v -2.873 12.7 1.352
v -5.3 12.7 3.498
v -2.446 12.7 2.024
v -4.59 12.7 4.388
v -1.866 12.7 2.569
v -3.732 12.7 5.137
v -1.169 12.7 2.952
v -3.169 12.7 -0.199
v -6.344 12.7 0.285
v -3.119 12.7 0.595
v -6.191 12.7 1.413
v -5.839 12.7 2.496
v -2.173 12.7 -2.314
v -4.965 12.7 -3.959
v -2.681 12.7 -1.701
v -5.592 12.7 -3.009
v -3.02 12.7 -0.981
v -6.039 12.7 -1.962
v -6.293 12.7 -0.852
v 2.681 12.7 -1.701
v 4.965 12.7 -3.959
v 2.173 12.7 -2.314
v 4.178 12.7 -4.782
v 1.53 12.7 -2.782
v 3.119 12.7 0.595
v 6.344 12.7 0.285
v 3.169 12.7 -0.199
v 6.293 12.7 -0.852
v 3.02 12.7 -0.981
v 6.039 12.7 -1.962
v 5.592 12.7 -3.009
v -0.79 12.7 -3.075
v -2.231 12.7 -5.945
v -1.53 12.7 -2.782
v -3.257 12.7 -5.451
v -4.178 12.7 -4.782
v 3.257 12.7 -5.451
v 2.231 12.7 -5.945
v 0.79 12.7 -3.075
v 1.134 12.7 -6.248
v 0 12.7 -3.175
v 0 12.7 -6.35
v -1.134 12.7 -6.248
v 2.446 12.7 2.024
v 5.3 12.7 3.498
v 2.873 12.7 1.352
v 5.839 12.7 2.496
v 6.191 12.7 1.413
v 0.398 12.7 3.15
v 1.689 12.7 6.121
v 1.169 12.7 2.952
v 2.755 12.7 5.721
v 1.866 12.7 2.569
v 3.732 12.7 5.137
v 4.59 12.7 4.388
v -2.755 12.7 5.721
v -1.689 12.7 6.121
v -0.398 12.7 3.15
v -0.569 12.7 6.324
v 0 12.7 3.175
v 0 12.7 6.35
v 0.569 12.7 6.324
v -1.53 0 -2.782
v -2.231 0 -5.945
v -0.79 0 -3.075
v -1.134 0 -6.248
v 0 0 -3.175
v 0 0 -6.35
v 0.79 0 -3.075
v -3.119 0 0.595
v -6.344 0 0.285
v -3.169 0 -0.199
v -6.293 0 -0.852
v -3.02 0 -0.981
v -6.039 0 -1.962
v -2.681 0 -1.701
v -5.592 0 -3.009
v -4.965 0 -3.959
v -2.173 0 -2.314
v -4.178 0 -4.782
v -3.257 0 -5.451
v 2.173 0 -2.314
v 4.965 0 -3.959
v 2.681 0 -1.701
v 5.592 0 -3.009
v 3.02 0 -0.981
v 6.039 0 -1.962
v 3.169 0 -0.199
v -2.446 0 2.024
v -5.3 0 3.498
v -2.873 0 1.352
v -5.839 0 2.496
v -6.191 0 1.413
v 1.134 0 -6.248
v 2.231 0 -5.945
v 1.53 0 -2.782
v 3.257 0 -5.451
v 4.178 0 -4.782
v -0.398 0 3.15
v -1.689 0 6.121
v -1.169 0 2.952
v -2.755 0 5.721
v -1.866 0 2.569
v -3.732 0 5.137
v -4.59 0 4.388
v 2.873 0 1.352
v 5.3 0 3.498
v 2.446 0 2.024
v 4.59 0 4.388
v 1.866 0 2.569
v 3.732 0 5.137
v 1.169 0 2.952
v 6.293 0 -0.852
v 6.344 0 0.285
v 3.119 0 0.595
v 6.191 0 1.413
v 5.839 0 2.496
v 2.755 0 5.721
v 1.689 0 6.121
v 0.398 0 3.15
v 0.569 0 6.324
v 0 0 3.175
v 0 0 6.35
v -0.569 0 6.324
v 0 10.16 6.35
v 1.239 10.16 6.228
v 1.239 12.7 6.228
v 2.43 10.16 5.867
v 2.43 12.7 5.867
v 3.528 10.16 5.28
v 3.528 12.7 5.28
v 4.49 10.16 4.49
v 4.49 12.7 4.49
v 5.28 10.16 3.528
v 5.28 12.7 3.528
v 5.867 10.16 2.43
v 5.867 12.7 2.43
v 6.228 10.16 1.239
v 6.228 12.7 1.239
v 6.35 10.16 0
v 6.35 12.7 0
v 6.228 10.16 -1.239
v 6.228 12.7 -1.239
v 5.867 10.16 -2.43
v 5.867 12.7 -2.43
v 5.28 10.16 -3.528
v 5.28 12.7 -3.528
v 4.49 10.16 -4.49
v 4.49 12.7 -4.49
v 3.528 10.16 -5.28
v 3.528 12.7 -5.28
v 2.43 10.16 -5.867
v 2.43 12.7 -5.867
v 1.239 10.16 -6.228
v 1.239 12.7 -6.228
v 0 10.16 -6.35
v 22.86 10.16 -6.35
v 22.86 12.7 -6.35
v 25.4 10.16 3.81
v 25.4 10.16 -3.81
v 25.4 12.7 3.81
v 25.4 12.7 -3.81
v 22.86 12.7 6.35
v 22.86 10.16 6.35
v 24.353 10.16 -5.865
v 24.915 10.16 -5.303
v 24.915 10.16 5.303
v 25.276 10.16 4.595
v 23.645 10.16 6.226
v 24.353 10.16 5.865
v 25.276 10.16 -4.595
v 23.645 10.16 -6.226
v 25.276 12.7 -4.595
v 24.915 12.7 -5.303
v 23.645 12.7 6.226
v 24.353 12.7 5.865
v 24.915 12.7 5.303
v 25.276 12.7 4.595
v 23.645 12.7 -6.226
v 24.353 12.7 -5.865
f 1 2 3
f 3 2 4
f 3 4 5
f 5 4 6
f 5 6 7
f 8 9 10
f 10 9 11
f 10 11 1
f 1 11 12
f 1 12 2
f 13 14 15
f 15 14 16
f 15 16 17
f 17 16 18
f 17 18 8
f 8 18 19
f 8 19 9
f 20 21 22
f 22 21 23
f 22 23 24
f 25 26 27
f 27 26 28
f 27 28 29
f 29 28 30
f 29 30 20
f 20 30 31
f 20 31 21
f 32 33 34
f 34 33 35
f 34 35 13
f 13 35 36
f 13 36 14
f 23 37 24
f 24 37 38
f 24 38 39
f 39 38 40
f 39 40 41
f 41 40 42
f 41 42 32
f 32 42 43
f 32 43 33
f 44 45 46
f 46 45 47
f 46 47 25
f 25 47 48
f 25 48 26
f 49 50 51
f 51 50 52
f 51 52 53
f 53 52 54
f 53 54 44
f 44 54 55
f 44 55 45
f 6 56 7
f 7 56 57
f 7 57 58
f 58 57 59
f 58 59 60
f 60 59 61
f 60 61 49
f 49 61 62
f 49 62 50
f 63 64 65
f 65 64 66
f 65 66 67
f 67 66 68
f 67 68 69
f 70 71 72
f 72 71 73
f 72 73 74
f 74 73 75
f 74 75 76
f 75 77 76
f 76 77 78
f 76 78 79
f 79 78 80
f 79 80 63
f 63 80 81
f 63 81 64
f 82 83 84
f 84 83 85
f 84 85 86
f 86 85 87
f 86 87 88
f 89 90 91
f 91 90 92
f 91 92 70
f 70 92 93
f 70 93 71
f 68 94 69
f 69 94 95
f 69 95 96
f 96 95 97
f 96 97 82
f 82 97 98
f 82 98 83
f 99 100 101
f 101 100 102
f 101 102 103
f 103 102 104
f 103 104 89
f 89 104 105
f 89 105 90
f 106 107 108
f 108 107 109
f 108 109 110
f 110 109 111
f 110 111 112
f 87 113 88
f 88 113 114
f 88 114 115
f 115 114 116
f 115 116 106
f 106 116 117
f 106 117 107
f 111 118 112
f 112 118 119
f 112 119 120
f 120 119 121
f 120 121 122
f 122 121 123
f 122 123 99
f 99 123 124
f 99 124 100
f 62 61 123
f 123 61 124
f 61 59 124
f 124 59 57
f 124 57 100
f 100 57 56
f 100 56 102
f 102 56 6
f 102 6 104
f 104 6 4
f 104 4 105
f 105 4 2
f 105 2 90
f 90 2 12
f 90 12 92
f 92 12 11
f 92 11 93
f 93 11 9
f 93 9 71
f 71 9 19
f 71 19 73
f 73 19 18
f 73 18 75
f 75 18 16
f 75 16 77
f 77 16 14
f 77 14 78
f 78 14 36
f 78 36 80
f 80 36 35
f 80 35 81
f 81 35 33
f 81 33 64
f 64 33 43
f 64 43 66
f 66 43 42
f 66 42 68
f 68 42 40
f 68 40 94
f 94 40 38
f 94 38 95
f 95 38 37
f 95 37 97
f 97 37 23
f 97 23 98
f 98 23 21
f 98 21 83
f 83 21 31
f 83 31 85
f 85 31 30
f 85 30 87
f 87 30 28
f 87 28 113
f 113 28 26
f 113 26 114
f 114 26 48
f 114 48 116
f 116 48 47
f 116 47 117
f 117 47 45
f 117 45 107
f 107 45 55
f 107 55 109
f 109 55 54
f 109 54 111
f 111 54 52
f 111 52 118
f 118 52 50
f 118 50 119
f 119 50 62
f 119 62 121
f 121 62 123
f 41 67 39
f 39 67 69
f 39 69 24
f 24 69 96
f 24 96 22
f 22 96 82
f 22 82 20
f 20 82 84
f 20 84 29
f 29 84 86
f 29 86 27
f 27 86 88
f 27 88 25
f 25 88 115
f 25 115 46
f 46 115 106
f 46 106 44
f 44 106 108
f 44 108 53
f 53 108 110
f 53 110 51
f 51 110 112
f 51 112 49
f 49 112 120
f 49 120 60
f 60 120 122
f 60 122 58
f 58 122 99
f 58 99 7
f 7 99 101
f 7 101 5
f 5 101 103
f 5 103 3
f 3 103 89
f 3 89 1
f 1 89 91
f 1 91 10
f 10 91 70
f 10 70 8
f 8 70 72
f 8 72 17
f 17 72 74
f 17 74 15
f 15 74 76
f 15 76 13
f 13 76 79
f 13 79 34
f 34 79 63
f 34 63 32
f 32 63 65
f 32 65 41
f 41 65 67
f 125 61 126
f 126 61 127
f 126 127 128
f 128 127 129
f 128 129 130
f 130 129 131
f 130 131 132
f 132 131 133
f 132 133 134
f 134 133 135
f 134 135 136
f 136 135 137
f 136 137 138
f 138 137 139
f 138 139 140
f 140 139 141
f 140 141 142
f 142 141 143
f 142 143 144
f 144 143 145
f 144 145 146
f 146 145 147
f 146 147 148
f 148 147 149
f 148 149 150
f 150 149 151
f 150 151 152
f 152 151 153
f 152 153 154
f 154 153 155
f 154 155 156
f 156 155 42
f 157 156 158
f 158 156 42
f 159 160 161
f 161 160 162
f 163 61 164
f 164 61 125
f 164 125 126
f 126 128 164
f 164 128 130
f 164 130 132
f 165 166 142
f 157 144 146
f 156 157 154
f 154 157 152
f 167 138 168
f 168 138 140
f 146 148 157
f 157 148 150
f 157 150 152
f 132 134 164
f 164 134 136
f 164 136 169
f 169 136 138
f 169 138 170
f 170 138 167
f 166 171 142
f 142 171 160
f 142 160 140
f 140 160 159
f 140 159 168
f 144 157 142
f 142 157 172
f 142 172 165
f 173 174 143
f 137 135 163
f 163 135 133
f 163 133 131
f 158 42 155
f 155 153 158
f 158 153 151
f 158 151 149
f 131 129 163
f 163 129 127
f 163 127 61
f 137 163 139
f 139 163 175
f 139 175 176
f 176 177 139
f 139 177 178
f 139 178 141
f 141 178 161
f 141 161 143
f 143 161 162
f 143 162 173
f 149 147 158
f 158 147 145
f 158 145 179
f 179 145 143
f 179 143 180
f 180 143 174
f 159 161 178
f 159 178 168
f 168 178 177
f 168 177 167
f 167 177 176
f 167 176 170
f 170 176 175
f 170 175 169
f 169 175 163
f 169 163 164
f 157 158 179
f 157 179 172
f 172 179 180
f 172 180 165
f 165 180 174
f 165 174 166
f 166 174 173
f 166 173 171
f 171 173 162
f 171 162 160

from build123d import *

# Parameters (mm, degrees)
SKETCH1_R           = 6.35
SKETCH1_R_2         = 3.175
BOSS_EXTRUDE1_DEPTH = 12.7
BOSS_EXTRUDE2_DEPTH = 2.54
FILLET1_R           = 2.54


with BuildPart() as part:
    # Sketch1 → Boss-Extrude1 (new body)
    with BuildSketch(Plane(origin=(0, 0, 0), x_dir=(1, 0, 0), z_dir=(0, 1, 0))):
        with Locations(Location((0, 0, 0), (0, 0, 270))):
            Circle(SKETCH1_R)
        with Locations(Location((0, 0, 0), (0, 0, 270))):
            Circle(SKETCH1_R_2, mode=Mode.SUBTRACT)
    extrude(amount=BOSS_EXTRUDE1_DEPTH)


with BuildPart() as body_2:
    # Sketch2 → Boss-Extrude2 (new body)
    with BuildSketch(Plane(origin=(0, 12.7, 0), x_dir=(1, 0, 0), z_dir=(0, 1, 0))):
        with BuildLine():
            Line((0, 6.35), (25.4, 6.35))
            Line((25.4, 6.35), (25.4, -6.35))
            Line((25.4, -6.35), (0, -6.35))
            ThreePointArc((0, -6.35), (6.35, 0), (0, 6.35))
        make_face()
    extrude(amount=-BOSS_EXTRUDE2_DEPTH)

    # Fillet1
    fillet1_edges = [body_2.edges().sort_by_distance(p)[0] for p in [
        (25.4, 11.43, -6.35),
        (25.4, 11.43, 6.35),
    ]]
    fillet(fillet1_edges, radius=FILLET1_R)


solid = Compound([part.part, body_2.part])
